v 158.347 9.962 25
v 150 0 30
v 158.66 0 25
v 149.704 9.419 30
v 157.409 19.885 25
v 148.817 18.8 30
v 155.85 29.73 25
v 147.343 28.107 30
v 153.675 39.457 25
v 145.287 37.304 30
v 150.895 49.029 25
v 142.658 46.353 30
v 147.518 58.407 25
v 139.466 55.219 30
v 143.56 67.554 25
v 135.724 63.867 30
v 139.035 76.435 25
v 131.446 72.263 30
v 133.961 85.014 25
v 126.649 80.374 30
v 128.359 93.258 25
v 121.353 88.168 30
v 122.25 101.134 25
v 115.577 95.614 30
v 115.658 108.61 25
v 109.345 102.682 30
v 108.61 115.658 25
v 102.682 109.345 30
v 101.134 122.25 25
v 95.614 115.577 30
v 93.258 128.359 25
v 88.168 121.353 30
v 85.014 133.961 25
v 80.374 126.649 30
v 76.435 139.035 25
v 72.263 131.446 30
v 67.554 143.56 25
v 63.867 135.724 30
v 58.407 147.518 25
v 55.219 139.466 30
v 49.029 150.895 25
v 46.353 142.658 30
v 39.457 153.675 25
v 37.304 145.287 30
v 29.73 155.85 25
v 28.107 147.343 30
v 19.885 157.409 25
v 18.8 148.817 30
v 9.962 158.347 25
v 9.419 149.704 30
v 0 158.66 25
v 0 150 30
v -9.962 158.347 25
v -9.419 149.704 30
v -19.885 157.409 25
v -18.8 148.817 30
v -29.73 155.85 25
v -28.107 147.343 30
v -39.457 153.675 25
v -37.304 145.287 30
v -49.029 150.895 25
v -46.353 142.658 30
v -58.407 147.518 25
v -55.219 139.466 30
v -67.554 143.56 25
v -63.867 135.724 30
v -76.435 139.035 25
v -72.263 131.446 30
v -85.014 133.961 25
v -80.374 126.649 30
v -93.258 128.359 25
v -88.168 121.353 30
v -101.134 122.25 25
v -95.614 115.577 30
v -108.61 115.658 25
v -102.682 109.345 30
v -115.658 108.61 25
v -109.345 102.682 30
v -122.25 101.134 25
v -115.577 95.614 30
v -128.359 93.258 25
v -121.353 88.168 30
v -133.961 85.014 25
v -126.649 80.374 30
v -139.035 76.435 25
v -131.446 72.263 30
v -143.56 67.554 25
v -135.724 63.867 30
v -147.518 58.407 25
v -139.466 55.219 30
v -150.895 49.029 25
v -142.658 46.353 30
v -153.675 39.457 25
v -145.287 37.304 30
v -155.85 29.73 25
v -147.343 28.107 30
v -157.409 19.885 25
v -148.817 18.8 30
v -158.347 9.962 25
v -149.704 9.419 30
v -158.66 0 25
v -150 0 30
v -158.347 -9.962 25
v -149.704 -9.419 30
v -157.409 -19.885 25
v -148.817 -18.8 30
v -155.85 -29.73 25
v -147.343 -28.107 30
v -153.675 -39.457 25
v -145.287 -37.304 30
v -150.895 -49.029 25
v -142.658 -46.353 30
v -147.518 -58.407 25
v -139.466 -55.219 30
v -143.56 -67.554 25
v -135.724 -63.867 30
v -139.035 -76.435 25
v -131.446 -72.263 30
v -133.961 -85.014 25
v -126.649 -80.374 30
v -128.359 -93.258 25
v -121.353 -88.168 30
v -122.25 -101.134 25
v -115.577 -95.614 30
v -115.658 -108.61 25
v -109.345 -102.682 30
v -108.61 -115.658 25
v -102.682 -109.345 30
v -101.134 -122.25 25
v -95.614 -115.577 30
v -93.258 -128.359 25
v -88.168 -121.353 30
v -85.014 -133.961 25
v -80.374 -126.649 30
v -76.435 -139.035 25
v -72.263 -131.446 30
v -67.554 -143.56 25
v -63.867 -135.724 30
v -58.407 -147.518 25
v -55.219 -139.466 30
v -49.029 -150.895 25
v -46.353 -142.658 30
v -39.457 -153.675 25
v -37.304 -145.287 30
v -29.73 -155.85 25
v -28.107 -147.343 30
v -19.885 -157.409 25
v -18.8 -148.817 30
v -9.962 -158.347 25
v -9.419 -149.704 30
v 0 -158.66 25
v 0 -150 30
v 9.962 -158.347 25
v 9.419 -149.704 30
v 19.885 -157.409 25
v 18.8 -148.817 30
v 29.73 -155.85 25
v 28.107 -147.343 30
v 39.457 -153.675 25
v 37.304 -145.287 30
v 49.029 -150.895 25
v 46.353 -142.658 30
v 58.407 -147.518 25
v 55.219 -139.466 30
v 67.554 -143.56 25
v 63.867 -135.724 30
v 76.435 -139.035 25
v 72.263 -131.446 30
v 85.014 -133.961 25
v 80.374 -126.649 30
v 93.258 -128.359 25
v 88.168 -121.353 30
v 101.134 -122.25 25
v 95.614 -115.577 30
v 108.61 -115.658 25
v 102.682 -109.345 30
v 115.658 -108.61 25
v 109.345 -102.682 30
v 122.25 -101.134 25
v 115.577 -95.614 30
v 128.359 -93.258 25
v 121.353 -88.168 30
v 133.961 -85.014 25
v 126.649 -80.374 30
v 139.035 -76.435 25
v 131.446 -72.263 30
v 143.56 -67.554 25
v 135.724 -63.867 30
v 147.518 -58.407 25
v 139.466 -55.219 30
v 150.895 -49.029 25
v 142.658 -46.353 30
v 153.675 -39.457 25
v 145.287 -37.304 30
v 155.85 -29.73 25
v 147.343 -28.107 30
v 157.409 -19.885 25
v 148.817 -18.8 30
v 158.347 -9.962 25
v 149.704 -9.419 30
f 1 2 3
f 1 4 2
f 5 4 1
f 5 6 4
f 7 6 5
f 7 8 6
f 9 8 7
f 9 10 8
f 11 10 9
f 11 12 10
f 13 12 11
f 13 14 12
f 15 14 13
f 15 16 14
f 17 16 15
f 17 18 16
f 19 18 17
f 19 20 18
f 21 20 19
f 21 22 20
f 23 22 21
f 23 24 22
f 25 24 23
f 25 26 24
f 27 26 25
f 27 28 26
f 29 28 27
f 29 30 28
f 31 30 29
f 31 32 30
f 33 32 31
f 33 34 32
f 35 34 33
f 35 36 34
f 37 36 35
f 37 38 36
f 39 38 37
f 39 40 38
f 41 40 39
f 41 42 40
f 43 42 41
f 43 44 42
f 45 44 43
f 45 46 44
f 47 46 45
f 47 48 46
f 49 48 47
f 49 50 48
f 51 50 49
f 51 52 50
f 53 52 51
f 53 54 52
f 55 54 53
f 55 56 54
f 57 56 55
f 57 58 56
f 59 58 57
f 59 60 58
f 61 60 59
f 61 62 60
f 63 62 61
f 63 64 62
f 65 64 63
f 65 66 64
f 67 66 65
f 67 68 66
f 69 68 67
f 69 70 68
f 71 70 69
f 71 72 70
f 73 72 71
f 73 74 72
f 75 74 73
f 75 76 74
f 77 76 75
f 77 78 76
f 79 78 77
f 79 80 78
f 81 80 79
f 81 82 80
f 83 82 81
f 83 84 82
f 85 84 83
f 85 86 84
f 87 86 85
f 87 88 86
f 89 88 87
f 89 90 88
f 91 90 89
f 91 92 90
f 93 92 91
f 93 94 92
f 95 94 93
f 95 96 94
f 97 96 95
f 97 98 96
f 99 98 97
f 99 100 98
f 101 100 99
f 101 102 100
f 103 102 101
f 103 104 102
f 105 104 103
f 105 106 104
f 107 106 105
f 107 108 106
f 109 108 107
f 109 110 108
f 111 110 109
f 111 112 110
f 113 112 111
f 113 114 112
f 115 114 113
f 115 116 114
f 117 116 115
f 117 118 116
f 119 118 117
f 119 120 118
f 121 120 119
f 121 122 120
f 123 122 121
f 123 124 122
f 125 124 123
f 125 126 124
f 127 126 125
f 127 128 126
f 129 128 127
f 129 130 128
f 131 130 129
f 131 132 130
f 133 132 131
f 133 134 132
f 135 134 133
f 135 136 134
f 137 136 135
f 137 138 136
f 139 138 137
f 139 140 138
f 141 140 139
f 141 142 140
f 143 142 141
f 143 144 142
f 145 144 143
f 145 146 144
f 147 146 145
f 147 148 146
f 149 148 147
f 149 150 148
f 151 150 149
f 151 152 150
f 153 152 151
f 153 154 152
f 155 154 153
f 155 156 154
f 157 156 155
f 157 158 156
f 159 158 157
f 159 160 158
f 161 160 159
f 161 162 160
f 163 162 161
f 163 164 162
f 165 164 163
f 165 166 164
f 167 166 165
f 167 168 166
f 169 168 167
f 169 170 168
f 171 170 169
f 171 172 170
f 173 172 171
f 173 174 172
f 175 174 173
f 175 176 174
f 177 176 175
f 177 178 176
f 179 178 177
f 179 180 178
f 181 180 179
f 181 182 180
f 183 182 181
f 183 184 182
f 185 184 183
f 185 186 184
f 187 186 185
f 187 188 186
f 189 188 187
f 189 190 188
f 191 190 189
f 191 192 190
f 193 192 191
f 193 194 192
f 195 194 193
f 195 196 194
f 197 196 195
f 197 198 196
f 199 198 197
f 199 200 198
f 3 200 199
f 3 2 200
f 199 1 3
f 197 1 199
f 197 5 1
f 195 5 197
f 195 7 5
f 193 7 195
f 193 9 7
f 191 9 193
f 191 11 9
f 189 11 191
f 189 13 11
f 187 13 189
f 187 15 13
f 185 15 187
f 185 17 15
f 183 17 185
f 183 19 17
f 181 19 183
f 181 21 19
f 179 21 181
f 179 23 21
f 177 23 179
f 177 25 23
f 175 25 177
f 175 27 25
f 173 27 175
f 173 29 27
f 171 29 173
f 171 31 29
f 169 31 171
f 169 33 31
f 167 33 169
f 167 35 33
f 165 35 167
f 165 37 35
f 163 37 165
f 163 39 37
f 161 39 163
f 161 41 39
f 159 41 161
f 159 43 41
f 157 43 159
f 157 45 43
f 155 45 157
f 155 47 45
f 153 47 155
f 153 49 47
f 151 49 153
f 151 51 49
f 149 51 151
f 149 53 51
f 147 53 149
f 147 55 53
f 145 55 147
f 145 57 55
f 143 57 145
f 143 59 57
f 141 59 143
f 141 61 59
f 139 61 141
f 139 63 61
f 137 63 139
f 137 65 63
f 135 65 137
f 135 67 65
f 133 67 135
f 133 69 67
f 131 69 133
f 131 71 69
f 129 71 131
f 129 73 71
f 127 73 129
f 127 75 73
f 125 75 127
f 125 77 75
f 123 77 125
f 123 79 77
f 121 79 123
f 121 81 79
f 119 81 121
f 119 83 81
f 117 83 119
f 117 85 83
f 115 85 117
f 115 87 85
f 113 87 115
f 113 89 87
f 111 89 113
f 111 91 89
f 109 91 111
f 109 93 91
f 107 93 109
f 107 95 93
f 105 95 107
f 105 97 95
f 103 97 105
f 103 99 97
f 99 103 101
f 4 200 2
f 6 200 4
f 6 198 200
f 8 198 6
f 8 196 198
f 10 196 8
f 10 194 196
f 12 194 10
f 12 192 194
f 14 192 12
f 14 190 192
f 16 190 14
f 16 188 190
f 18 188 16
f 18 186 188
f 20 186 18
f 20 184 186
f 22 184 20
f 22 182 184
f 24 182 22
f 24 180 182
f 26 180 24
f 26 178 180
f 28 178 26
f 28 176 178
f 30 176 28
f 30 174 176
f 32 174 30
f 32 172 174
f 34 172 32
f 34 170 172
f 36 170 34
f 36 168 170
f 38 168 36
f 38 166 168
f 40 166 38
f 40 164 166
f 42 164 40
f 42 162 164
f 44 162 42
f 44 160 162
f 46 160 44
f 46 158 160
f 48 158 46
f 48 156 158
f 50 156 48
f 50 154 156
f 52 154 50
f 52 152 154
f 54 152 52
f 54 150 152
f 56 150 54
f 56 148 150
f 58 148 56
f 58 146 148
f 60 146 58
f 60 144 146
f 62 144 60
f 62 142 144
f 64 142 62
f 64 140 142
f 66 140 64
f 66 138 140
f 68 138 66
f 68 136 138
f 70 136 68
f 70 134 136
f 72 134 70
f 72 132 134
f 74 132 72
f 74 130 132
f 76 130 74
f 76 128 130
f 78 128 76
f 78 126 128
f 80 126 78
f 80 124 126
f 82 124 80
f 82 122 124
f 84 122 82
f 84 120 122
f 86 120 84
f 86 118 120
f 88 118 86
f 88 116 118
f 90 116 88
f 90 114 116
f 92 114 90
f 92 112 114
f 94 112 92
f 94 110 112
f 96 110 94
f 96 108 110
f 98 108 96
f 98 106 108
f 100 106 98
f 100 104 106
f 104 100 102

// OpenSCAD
$fn = 100;

translate([0, 0, 30])
    rotate([0, 0, 0])
        translate([0, 0, -5])
            cylinder(5, 158.66, 150, false);
